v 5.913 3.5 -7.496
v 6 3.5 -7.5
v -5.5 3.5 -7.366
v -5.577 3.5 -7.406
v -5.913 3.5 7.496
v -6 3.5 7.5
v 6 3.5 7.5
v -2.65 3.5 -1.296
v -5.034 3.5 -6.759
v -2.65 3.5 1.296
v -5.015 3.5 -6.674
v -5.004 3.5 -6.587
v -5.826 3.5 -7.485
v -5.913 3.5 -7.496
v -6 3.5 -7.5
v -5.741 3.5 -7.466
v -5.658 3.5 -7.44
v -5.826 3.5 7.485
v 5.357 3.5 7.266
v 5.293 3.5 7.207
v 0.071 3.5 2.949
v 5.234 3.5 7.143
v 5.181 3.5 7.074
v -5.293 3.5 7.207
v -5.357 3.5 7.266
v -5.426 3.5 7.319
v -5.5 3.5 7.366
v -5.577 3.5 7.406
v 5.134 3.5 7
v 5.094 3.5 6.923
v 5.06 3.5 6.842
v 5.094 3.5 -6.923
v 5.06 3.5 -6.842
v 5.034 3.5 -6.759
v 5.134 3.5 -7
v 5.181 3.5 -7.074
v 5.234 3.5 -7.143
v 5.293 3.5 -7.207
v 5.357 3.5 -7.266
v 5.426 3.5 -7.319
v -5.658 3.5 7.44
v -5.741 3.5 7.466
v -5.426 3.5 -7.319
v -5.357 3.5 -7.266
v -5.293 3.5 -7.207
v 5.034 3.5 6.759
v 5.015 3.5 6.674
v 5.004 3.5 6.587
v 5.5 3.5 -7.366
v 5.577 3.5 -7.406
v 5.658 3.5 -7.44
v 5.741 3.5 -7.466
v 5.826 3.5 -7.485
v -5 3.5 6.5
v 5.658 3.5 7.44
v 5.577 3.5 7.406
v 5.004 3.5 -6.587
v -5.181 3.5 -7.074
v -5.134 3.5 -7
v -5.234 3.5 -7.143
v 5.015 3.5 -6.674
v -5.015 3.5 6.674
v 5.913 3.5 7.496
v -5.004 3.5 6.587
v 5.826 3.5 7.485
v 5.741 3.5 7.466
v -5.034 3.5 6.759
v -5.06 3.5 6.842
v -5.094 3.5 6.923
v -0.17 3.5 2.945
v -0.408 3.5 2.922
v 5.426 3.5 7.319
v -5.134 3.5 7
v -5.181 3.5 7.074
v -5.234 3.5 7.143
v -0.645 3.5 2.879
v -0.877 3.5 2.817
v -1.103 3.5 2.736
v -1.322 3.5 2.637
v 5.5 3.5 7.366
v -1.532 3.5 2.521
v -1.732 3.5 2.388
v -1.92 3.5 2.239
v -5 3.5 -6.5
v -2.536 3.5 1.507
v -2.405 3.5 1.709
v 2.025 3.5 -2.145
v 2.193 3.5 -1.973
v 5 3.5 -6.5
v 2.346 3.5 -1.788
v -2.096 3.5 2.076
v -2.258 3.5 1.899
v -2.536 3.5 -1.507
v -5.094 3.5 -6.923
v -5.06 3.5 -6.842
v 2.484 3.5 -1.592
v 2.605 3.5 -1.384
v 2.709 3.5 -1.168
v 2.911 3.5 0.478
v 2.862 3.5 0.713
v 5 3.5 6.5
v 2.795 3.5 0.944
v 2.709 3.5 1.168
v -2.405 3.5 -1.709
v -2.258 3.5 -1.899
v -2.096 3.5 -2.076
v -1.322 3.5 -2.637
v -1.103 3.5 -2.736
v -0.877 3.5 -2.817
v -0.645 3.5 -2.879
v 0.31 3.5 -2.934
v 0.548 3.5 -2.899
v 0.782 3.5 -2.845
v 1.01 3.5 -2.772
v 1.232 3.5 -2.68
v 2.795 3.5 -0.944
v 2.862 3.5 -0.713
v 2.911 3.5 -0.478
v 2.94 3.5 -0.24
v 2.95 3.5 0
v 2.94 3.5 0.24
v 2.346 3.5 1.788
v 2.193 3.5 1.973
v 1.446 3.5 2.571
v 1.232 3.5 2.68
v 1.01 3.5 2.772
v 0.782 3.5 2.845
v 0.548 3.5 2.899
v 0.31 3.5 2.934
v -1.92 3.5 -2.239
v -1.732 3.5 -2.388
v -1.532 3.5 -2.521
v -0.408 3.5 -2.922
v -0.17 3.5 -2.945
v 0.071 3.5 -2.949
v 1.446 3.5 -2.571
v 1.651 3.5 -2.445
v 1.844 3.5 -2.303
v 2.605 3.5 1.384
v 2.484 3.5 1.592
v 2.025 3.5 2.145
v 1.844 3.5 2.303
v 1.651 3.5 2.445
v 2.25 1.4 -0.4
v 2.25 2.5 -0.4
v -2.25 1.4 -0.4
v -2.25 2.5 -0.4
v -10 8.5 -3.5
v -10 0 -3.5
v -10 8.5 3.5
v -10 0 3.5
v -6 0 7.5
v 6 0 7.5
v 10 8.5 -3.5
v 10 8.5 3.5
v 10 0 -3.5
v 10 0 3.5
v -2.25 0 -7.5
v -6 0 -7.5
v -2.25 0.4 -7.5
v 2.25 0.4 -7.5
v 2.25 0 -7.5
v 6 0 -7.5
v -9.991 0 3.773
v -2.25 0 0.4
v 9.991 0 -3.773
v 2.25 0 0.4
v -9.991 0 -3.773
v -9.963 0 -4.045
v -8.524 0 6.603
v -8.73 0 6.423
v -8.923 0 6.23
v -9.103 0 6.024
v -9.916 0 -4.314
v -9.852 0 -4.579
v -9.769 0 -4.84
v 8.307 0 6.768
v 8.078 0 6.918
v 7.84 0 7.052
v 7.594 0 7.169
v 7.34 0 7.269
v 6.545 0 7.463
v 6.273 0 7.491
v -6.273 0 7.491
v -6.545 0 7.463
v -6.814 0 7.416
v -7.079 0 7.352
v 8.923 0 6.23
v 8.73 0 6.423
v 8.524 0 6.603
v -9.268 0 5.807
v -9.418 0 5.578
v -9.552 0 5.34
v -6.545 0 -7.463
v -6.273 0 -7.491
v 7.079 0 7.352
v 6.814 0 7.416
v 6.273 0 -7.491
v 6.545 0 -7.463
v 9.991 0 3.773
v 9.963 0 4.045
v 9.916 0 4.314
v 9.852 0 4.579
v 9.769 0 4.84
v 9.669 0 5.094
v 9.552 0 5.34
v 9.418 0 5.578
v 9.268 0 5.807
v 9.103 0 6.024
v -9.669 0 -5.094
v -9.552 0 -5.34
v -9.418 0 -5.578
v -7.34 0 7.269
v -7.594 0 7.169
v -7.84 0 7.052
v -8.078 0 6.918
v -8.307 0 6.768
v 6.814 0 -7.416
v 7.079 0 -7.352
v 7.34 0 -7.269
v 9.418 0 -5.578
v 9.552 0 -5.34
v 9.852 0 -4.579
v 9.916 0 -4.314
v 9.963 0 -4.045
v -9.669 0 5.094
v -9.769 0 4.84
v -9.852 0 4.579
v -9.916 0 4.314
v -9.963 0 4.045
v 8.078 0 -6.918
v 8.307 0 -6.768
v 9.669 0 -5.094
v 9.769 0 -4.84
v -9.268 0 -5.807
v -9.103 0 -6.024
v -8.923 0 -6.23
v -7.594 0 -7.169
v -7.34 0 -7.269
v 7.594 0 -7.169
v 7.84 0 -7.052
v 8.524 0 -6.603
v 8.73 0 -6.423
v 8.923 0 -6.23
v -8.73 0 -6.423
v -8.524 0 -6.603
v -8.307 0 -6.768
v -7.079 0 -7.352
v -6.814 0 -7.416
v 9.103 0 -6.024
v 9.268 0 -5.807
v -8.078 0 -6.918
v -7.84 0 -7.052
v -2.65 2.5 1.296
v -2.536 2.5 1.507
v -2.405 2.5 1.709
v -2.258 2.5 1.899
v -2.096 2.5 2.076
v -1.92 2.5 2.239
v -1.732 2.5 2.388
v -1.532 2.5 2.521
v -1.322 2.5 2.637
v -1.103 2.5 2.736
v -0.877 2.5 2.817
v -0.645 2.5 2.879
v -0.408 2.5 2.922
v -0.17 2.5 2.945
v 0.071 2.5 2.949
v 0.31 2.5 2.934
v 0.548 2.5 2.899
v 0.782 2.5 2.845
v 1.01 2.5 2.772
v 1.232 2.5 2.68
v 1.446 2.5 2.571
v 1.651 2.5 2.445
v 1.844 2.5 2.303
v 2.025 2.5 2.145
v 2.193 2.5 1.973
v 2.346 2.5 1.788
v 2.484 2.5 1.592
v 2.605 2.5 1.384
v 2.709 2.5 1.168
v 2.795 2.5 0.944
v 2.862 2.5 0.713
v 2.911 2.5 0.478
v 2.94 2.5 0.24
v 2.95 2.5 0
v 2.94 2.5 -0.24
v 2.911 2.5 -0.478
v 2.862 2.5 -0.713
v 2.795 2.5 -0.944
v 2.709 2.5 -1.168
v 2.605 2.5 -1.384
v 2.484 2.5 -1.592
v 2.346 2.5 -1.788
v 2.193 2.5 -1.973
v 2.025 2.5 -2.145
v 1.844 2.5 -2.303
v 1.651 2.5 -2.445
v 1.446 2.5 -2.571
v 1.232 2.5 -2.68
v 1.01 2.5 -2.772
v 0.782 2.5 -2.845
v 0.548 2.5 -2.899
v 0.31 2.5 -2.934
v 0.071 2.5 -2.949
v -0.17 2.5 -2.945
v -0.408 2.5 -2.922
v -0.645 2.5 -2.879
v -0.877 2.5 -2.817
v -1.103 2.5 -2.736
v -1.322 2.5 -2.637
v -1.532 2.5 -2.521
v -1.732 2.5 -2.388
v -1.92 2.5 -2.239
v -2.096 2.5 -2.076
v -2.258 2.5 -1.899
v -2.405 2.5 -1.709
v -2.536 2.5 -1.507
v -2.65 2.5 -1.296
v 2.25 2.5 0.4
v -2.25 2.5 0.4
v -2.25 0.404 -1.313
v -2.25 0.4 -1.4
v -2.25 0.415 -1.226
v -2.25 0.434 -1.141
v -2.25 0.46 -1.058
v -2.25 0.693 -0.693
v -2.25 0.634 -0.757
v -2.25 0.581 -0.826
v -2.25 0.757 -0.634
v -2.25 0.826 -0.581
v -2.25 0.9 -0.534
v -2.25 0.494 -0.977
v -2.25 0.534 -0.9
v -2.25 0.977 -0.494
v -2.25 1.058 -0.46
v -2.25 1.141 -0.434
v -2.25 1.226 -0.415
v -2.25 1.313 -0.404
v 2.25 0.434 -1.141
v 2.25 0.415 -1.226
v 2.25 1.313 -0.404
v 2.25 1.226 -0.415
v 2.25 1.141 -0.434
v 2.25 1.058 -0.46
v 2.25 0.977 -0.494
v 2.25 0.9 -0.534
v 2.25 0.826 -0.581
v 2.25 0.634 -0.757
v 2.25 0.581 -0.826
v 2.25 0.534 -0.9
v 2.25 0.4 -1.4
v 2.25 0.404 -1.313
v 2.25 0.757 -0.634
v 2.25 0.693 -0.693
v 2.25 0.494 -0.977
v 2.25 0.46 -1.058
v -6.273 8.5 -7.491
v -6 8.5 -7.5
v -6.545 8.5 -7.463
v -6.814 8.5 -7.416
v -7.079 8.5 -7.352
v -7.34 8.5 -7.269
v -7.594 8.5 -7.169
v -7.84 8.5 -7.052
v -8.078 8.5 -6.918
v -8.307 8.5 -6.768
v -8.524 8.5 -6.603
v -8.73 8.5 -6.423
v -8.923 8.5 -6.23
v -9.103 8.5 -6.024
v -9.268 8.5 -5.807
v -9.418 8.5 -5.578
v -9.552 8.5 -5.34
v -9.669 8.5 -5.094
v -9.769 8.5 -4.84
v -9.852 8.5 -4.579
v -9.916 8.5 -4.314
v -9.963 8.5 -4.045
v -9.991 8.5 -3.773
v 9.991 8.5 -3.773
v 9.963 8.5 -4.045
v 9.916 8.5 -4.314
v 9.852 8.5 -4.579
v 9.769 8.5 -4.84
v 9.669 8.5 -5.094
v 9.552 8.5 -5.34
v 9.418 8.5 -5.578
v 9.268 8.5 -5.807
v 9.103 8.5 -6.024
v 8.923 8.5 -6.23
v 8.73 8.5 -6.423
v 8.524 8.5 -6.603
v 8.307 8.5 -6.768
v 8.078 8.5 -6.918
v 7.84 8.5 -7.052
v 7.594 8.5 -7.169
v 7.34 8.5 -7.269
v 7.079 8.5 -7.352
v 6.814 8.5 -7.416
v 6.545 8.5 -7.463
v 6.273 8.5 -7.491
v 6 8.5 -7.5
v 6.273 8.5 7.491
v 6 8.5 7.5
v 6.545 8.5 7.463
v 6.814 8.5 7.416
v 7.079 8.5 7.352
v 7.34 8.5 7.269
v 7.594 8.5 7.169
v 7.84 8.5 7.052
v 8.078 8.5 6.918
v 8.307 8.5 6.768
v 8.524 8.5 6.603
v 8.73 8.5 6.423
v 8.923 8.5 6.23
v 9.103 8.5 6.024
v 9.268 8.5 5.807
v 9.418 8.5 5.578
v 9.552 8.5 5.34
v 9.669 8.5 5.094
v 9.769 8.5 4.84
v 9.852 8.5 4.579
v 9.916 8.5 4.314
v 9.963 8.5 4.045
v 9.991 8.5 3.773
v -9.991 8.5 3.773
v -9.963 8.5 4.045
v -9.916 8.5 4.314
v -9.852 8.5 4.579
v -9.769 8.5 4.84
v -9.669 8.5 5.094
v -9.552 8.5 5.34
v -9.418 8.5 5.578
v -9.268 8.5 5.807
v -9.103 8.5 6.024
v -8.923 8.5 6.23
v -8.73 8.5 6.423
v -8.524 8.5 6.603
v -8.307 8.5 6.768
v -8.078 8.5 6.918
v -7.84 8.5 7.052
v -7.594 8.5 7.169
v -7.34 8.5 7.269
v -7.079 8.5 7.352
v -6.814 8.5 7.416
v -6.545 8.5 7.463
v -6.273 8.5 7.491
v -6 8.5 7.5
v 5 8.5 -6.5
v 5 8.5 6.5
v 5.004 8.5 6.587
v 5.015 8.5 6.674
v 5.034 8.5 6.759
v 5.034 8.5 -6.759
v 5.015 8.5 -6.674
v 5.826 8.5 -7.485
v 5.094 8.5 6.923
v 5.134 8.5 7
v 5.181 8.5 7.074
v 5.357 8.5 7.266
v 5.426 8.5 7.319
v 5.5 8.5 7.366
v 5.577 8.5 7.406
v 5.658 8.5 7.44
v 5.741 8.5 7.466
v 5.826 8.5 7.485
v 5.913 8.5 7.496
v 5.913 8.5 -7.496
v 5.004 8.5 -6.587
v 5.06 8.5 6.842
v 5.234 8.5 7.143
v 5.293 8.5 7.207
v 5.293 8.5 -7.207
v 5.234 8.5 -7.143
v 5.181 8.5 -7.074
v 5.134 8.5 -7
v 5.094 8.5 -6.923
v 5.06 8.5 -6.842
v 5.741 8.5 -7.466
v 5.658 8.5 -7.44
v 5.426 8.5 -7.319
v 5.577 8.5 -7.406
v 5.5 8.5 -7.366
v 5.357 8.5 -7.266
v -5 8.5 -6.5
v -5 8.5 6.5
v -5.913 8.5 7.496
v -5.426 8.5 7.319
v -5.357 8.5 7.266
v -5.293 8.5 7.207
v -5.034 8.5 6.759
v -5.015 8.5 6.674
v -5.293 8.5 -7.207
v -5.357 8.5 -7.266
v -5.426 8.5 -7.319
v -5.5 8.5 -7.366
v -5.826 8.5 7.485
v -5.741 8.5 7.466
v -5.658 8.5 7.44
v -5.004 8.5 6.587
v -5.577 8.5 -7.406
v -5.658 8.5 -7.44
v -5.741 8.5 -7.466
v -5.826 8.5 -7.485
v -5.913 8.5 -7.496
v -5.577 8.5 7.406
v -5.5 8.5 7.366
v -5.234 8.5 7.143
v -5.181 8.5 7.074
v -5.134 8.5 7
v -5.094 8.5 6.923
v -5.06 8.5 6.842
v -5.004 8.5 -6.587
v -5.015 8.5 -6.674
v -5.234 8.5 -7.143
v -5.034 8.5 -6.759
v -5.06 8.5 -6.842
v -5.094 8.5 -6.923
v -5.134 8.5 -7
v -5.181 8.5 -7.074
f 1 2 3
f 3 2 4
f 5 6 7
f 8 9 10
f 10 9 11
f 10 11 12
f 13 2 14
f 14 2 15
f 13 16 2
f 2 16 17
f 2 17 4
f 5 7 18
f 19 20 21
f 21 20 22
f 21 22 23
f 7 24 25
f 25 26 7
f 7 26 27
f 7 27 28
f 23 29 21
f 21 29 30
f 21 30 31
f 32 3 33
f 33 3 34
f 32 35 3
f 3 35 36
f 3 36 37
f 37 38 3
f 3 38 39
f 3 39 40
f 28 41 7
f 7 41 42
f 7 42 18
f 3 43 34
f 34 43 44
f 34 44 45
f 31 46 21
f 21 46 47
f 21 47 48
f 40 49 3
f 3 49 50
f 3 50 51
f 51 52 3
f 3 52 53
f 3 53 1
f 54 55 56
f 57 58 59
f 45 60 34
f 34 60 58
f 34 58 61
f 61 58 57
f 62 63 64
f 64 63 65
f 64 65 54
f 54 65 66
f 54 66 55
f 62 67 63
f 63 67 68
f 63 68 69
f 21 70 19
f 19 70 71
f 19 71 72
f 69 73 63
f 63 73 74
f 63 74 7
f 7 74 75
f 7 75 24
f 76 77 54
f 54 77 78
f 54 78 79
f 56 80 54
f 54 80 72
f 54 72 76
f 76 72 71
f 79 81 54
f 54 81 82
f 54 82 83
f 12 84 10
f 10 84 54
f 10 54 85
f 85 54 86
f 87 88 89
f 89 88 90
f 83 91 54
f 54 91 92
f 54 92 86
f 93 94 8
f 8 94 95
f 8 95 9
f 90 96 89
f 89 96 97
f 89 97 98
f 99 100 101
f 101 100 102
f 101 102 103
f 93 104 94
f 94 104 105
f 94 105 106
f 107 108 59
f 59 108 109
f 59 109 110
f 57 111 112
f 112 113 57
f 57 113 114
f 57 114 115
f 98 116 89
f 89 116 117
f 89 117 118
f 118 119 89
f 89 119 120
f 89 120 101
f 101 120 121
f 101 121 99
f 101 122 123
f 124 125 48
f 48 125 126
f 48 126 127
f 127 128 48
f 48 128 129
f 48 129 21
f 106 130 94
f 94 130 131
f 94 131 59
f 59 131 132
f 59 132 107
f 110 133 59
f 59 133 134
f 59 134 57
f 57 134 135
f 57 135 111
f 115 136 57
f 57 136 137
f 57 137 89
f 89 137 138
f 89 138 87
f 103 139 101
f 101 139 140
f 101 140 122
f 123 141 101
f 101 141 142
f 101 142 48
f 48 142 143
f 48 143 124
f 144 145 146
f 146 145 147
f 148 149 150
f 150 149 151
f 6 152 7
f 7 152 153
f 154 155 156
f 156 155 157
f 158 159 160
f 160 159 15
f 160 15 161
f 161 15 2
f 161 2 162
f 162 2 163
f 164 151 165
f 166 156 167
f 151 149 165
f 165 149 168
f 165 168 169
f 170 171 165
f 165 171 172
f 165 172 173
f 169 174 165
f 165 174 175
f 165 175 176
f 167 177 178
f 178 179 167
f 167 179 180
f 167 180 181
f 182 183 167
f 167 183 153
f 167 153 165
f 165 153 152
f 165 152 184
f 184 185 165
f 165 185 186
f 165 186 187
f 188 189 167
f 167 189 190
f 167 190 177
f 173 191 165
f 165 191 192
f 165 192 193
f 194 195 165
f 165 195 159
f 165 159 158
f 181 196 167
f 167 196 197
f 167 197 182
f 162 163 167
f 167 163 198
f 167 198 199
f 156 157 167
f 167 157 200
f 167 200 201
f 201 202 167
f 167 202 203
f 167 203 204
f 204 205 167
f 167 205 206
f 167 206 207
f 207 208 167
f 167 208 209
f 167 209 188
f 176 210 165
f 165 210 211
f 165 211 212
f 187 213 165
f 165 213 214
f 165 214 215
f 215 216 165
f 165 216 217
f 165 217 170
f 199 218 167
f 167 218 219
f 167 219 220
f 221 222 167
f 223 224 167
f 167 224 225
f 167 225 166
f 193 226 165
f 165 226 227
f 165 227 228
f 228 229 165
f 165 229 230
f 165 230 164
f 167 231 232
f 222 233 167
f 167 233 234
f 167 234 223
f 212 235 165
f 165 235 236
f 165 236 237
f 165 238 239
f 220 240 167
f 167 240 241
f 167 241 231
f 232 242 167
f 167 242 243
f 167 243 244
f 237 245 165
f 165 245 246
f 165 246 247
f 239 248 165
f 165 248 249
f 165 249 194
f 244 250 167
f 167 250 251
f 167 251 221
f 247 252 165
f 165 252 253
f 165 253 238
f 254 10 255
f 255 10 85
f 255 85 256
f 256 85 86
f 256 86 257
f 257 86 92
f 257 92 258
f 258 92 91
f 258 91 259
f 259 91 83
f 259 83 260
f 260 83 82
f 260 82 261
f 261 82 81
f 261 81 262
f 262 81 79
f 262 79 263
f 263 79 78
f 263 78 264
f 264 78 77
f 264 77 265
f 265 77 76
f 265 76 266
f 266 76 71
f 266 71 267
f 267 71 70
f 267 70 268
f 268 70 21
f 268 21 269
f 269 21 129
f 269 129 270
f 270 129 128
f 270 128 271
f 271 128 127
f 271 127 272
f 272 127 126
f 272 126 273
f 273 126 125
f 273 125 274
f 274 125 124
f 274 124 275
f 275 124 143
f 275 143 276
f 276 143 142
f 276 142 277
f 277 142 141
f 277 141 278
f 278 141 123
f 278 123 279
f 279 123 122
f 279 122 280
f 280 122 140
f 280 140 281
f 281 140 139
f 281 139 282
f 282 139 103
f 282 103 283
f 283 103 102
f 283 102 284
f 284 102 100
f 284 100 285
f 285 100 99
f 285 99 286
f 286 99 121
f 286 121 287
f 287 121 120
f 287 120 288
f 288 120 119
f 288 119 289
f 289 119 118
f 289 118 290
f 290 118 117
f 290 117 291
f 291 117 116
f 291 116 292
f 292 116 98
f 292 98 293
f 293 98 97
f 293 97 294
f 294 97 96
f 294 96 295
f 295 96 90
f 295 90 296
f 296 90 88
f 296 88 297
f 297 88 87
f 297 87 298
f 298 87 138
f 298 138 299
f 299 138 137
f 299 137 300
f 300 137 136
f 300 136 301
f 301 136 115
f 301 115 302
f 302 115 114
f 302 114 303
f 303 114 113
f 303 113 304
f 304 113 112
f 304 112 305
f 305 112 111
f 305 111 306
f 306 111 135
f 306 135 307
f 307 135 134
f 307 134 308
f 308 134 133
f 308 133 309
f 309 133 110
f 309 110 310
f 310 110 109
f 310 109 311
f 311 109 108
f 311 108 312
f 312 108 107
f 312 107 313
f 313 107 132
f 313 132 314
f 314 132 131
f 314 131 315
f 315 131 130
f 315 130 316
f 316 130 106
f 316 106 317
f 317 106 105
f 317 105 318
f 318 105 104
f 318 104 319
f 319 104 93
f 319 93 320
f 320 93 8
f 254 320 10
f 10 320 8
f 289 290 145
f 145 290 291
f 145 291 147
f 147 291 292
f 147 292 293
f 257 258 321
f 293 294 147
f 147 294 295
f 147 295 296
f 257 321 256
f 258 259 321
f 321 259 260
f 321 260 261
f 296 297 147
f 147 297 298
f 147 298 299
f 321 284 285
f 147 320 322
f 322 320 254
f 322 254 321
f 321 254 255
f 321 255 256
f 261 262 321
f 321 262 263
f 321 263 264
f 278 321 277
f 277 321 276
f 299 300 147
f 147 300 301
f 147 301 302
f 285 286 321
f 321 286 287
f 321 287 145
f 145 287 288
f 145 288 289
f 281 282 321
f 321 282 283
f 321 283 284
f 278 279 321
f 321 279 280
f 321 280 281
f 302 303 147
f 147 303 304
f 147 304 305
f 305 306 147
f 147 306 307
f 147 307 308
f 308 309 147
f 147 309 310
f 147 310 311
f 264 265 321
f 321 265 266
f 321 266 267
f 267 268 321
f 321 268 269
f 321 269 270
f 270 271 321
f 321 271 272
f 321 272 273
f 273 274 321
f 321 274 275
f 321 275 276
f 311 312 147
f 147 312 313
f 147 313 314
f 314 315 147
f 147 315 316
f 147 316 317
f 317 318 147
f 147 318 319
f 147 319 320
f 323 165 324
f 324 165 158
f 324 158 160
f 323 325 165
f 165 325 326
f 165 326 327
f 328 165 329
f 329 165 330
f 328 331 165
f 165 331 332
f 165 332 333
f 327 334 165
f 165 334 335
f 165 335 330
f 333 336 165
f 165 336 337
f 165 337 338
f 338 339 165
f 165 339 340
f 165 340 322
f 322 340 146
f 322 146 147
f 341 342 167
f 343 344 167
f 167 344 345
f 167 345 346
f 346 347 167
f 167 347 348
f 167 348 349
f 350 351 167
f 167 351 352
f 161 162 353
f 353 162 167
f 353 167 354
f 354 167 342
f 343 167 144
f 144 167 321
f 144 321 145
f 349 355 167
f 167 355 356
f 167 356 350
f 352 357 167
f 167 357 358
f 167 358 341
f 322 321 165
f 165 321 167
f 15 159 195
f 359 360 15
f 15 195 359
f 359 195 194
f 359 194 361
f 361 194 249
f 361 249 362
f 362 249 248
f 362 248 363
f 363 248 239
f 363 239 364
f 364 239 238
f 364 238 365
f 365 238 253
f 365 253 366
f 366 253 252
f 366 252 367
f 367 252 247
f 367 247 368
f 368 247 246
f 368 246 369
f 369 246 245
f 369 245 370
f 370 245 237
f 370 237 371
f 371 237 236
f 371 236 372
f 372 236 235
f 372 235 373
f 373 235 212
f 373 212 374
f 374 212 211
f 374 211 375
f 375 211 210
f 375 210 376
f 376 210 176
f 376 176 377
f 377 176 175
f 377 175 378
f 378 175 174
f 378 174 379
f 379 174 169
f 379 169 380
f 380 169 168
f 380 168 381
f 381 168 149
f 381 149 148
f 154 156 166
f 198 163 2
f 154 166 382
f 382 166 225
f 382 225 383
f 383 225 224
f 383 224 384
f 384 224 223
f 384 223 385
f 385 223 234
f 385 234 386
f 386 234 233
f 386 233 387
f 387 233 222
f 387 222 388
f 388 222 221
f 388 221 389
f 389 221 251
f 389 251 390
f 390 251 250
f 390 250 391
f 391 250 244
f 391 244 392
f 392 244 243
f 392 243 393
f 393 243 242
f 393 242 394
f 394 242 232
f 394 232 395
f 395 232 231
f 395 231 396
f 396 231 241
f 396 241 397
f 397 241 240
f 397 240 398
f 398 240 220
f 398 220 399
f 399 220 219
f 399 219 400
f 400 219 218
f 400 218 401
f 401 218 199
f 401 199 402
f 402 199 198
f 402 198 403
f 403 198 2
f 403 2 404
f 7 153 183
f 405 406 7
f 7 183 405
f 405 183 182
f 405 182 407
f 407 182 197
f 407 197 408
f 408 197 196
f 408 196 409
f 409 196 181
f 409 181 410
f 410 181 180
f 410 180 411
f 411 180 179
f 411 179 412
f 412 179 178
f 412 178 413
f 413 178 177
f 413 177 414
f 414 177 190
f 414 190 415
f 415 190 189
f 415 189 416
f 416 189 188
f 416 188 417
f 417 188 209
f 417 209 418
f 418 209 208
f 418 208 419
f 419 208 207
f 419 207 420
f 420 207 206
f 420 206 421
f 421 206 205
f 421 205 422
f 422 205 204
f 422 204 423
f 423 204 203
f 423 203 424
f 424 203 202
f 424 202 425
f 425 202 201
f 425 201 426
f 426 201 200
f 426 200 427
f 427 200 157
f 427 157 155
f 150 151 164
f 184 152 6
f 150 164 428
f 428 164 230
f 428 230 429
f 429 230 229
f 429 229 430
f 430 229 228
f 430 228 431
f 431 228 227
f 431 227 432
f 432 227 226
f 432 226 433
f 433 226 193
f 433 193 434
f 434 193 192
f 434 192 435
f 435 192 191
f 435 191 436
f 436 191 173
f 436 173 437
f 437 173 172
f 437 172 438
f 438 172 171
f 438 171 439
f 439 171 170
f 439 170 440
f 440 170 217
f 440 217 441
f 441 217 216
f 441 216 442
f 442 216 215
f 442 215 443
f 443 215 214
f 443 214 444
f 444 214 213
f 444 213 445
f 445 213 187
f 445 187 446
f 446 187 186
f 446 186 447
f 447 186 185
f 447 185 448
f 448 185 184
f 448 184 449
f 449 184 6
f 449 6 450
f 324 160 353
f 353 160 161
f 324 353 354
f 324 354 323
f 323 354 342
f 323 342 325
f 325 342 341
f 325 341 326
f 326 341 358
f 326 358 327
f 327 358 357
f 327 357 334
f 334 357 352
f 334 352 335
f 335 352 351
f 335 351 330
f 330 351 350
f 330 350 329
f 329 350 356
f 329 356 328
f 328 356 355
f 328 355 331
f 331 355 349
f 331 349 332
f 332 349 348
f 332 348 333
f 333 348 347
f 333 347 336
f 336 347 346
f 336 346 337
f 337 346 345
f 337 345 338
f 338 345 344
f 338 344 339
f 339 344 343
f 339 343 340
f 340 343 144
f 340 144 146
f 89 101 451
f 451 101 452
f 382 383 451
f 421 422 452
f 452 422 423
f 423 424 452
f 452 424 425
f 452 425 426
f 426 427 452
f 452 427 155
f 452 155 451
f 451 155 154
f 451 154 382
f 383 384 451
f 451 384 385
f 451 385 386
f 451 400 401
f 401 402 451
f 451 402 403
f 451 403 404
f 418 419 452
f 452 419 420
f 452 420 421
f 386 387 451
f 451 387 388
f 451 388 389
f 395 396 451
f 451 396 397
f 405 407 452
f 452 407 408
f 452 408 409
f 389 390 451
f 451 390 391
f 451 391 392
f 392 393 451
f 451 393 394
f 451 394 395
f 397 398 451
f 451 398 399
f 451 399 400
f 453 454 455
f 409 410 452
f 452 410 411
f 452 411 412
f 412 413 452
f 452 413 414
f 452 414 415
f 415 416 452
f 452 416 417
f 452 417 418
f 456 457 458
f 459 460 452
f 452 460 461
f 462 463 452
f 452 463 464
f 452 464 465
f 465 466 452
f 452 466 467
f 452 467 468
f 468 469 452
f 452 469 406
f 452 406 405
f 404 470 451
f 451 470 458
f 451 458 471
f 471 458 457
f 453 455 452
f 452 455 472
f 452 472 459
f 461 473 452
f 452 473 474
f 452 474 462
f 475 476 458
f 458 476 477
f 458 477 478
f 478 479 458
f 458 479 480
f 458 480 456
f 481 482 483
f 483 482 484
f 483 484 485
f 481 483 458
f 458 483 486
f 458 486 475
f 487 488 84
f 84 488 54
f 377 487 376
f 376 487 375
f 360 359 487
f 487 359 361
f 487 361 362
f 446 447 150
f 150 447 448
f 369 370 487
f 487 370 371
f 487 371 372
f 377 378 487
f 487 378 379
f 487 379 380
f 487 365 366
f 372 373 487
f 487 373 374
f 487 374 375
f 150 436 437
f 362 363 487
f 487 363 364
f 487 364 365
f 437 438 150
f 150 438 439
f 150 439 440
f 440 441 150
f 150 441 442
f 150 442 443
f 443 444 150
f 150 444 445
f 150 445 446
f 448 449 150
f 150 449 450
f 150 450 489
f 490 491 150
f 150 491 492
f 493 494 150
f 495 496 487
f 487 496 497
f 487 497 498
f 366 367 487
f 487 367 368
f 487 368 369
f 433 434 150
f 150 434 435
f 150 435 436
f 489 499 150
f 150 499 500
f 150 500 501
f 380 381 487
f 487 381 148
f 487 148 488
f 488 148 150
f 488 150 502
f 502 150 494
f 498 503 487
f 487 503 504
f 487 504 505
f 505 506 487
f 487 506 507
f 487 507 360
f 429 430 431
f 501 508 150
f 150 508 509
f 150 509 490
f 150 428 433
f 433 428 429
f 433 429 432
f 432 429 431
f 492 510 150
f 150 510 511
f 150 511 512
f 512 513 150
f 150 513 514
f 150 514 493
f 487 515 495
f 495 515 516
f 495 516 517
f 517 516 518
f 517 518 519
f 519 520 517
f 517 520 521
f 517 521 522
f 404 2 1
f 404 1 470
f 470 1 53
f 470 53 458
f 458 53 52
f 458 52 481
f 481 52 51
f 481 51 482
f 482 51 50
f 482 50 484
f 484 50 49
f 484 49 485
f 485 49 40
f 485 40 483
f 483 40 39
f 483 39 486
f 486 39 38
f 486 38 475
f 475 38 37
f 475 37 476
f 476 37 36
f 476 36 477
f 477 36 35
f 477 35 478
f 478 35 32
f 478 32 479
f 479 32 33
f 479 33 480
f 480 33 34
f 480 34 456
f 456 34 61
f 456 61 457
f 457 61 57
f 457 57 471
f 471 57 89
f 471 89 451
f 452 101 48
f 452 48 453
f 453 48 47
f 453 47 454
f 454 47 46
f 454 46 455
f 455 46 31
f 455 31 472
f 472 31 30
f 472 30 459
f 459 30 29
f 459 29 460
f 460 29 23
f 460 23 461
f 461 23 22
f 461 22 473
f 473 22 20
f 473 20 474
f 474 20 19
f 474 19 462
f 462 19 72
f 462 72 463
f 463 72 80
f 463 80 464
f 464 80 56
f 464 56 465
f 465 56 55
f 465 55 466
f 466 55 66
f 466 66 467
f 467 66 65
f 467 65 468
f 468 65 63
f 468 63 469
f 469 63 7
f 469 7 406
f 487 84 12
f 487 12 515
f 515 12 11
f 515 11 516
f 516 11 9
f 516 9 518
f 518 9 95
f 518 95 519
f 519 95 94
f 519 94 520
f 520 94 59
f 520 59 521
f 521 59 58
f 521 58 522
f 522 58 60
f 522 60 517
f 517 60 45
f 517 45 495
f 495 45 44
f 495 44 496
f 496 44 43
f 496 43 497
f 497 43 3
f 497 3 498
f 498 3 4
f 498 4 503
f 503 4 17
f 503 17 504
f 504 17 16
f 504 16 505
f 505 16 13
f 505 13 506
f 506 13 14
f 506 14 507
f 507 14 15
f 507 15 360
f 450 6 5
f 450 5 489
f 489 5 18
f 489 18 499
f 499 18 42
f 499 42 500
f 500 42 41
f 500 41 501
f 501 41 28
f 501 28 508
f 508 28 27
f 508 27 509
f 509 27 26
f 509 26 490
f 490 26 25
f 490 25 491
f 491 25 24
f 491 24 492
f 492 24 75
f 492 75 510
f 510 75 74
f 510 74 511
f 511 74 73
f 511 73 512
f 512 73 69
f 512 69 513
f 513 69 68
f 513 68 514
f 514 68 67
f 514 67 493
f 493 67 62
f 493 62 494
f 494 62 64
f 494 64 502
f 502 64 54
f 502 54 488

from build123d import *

# Parameters (mm, degrees)
SKETCH1_W           = 20
SKETCH1_H           = 15
BOSS_EXTRUDE1_DEPTH = 3.5
CUT_EXTRUDE1_DEPTH  = 1
CUT_EXTRUDE2_REACH  = 14.748
SKETCH3_W           = 4.5
SKETCH3_H           = 0.8
FILLET1_R           = 4
SKETCH4_W           = 4.5
SKETCH4_H           = 7.1
CUT_EXTRUDE3_DEPTH  = 0.4
FILLET2_R           = 1
BOSS_EXTRUDE2_START = 5
BOSS_EXTRUDE2_DEPTH = 5
FILLET3_R           = 1


with BuildPart() as part:
    # Sketch1 → Boss-Extrude1 (new body)
    with BuildSketch(Plane(origin=(0, 0, 0), x_dir=(1, 0, 0), z_dir=(0, 1, 0))):
        Rectangle(SKETCH1_W, SKETCH1_H)
    extrude(amount=BOSS_EXTRUDE1_DEPTH)

    # Sketch2 → Cut-Extrude1 (cut)
    with BuildSketch(Plane(origin=(0, 3.5, 0), x_dir=(1, 0, 0), z_dir=(0, 1, 0))):
        with BuildLine():
            Line((-2.65, -1.29614814), (-2.65, 1.29614814))
            ThreePointArc((-2.65, 1.29614814), (2.95, 0), (-2.65, -1.29614814))
        make_face()
    extrude(amount=-CUT_EXTRUDE1_DEPTH, mode=Mode.SUBTRACT)

    # Sketch3 → Cut-Extrude2 (cut, up to next)
    with BuildSketch(Plane(origin=(0, 2.5, 0), x_dir=(1, 0, 0), z_dir=(0, 1, 0)), mode=Mode.PRIVATE) as cut_extrude2_sk1:
        Rectangle(SKETCH3_W, SKETCH3_H)
    cut_extrude2_tool1 = extrude(cut_extrude2_sk1.sketch, amount=-CUT_EXTRUDE2_REACH, mode=Mode.PRIVATE) & part.part
    add(cut_extrude2_tool1.solids().sort_by_distance((0, 2.5, 0))[0], mode=Mode.SUBTRACT)

    # Fillet1
    fillet1_edges = [part.edges().sort_by_distance(p)[0] for p in [
        (-10, 1.75, -7.5),
        (10, 1.75, -7.5),
        (10, 1.75, 7.5),
        (-10, 1.75, 7.5),
    ]]
    fillet(fillet1_edges, radius=FILLET1_R)

    # Sketch4 → Cut-Extrude3 (cut)
    with BuildSketch(Plane.XZ):
        with Locations((0, -3.95)):
            Rectangle(SKETCH4_W, SKETCH4_H)
    extrude(amount=-CUT_EXTRUDE3_DEPTH, mode=Mode.SUBTRACT)

    # Fillet2
    fillet2_edges = [part.edges().sort_by_distance(p)[0] for p in [
        (0, 0.4, -0.4),
    ]]
    fillet(fillet2_edges, radius=FILLET2_R)

    # Sketch5 → Boss-Extrude2 (add)
    with BuildSketch(Plane(origin=(0, 3.5, 0), x_dir=(1, 0, 0), z_dir=(0, 1, 0)).offset(BOSS_EXTRUDE2_START)):
        with BuildLine():
            Line((-5, 7.5), (-5, -7.5))
            Line((-5, -7.5), (-6, -7.5))
            ThreePointArc((-6, -7.5), (-8.828427125, -6.328427125), (-10, -3.5))
            Line((-10, -3.5), (-10, 3.5))
            ThreePointArc((-10, 3.5), (-8.828427125, 6.328427125), (-6, 7.5))
            Line((-6, 7.5), (-5, 7.5))
        make_face()
        with BuildLine():
            Line((5, 7.5), (5, -7.5))
            Line((5, -7.5), (6, -7.5))
            ThreePointArc((6, -7.5), (8.828427125, -6.328427125), (10, -3.5))
            Line((10, -3.5), (10, 3.5))
            ThreePointArc((10, 3.5), (8.828427125, 6.328427125), (6, 7.5))
            Line((6, 7.5), (5, 7.5))
        make_face()
    extrude(amount=-BOSS_EXTRUDE2_DEPTH)

    # Fillet3
    fillet3_edges = [part.edges().sort_by_distance(p)[0] for p in [
        (5, 6, -7.5),
        (5, 6, 7.5),
        (-5, 6, -7.5),
        (-5, 6, 7.5),
    ]]
    fillet(fillet3_edges, radius=FILLET3_R - 0.0001)  # a hair under: the kernel refuses the full size


solid = part.part
